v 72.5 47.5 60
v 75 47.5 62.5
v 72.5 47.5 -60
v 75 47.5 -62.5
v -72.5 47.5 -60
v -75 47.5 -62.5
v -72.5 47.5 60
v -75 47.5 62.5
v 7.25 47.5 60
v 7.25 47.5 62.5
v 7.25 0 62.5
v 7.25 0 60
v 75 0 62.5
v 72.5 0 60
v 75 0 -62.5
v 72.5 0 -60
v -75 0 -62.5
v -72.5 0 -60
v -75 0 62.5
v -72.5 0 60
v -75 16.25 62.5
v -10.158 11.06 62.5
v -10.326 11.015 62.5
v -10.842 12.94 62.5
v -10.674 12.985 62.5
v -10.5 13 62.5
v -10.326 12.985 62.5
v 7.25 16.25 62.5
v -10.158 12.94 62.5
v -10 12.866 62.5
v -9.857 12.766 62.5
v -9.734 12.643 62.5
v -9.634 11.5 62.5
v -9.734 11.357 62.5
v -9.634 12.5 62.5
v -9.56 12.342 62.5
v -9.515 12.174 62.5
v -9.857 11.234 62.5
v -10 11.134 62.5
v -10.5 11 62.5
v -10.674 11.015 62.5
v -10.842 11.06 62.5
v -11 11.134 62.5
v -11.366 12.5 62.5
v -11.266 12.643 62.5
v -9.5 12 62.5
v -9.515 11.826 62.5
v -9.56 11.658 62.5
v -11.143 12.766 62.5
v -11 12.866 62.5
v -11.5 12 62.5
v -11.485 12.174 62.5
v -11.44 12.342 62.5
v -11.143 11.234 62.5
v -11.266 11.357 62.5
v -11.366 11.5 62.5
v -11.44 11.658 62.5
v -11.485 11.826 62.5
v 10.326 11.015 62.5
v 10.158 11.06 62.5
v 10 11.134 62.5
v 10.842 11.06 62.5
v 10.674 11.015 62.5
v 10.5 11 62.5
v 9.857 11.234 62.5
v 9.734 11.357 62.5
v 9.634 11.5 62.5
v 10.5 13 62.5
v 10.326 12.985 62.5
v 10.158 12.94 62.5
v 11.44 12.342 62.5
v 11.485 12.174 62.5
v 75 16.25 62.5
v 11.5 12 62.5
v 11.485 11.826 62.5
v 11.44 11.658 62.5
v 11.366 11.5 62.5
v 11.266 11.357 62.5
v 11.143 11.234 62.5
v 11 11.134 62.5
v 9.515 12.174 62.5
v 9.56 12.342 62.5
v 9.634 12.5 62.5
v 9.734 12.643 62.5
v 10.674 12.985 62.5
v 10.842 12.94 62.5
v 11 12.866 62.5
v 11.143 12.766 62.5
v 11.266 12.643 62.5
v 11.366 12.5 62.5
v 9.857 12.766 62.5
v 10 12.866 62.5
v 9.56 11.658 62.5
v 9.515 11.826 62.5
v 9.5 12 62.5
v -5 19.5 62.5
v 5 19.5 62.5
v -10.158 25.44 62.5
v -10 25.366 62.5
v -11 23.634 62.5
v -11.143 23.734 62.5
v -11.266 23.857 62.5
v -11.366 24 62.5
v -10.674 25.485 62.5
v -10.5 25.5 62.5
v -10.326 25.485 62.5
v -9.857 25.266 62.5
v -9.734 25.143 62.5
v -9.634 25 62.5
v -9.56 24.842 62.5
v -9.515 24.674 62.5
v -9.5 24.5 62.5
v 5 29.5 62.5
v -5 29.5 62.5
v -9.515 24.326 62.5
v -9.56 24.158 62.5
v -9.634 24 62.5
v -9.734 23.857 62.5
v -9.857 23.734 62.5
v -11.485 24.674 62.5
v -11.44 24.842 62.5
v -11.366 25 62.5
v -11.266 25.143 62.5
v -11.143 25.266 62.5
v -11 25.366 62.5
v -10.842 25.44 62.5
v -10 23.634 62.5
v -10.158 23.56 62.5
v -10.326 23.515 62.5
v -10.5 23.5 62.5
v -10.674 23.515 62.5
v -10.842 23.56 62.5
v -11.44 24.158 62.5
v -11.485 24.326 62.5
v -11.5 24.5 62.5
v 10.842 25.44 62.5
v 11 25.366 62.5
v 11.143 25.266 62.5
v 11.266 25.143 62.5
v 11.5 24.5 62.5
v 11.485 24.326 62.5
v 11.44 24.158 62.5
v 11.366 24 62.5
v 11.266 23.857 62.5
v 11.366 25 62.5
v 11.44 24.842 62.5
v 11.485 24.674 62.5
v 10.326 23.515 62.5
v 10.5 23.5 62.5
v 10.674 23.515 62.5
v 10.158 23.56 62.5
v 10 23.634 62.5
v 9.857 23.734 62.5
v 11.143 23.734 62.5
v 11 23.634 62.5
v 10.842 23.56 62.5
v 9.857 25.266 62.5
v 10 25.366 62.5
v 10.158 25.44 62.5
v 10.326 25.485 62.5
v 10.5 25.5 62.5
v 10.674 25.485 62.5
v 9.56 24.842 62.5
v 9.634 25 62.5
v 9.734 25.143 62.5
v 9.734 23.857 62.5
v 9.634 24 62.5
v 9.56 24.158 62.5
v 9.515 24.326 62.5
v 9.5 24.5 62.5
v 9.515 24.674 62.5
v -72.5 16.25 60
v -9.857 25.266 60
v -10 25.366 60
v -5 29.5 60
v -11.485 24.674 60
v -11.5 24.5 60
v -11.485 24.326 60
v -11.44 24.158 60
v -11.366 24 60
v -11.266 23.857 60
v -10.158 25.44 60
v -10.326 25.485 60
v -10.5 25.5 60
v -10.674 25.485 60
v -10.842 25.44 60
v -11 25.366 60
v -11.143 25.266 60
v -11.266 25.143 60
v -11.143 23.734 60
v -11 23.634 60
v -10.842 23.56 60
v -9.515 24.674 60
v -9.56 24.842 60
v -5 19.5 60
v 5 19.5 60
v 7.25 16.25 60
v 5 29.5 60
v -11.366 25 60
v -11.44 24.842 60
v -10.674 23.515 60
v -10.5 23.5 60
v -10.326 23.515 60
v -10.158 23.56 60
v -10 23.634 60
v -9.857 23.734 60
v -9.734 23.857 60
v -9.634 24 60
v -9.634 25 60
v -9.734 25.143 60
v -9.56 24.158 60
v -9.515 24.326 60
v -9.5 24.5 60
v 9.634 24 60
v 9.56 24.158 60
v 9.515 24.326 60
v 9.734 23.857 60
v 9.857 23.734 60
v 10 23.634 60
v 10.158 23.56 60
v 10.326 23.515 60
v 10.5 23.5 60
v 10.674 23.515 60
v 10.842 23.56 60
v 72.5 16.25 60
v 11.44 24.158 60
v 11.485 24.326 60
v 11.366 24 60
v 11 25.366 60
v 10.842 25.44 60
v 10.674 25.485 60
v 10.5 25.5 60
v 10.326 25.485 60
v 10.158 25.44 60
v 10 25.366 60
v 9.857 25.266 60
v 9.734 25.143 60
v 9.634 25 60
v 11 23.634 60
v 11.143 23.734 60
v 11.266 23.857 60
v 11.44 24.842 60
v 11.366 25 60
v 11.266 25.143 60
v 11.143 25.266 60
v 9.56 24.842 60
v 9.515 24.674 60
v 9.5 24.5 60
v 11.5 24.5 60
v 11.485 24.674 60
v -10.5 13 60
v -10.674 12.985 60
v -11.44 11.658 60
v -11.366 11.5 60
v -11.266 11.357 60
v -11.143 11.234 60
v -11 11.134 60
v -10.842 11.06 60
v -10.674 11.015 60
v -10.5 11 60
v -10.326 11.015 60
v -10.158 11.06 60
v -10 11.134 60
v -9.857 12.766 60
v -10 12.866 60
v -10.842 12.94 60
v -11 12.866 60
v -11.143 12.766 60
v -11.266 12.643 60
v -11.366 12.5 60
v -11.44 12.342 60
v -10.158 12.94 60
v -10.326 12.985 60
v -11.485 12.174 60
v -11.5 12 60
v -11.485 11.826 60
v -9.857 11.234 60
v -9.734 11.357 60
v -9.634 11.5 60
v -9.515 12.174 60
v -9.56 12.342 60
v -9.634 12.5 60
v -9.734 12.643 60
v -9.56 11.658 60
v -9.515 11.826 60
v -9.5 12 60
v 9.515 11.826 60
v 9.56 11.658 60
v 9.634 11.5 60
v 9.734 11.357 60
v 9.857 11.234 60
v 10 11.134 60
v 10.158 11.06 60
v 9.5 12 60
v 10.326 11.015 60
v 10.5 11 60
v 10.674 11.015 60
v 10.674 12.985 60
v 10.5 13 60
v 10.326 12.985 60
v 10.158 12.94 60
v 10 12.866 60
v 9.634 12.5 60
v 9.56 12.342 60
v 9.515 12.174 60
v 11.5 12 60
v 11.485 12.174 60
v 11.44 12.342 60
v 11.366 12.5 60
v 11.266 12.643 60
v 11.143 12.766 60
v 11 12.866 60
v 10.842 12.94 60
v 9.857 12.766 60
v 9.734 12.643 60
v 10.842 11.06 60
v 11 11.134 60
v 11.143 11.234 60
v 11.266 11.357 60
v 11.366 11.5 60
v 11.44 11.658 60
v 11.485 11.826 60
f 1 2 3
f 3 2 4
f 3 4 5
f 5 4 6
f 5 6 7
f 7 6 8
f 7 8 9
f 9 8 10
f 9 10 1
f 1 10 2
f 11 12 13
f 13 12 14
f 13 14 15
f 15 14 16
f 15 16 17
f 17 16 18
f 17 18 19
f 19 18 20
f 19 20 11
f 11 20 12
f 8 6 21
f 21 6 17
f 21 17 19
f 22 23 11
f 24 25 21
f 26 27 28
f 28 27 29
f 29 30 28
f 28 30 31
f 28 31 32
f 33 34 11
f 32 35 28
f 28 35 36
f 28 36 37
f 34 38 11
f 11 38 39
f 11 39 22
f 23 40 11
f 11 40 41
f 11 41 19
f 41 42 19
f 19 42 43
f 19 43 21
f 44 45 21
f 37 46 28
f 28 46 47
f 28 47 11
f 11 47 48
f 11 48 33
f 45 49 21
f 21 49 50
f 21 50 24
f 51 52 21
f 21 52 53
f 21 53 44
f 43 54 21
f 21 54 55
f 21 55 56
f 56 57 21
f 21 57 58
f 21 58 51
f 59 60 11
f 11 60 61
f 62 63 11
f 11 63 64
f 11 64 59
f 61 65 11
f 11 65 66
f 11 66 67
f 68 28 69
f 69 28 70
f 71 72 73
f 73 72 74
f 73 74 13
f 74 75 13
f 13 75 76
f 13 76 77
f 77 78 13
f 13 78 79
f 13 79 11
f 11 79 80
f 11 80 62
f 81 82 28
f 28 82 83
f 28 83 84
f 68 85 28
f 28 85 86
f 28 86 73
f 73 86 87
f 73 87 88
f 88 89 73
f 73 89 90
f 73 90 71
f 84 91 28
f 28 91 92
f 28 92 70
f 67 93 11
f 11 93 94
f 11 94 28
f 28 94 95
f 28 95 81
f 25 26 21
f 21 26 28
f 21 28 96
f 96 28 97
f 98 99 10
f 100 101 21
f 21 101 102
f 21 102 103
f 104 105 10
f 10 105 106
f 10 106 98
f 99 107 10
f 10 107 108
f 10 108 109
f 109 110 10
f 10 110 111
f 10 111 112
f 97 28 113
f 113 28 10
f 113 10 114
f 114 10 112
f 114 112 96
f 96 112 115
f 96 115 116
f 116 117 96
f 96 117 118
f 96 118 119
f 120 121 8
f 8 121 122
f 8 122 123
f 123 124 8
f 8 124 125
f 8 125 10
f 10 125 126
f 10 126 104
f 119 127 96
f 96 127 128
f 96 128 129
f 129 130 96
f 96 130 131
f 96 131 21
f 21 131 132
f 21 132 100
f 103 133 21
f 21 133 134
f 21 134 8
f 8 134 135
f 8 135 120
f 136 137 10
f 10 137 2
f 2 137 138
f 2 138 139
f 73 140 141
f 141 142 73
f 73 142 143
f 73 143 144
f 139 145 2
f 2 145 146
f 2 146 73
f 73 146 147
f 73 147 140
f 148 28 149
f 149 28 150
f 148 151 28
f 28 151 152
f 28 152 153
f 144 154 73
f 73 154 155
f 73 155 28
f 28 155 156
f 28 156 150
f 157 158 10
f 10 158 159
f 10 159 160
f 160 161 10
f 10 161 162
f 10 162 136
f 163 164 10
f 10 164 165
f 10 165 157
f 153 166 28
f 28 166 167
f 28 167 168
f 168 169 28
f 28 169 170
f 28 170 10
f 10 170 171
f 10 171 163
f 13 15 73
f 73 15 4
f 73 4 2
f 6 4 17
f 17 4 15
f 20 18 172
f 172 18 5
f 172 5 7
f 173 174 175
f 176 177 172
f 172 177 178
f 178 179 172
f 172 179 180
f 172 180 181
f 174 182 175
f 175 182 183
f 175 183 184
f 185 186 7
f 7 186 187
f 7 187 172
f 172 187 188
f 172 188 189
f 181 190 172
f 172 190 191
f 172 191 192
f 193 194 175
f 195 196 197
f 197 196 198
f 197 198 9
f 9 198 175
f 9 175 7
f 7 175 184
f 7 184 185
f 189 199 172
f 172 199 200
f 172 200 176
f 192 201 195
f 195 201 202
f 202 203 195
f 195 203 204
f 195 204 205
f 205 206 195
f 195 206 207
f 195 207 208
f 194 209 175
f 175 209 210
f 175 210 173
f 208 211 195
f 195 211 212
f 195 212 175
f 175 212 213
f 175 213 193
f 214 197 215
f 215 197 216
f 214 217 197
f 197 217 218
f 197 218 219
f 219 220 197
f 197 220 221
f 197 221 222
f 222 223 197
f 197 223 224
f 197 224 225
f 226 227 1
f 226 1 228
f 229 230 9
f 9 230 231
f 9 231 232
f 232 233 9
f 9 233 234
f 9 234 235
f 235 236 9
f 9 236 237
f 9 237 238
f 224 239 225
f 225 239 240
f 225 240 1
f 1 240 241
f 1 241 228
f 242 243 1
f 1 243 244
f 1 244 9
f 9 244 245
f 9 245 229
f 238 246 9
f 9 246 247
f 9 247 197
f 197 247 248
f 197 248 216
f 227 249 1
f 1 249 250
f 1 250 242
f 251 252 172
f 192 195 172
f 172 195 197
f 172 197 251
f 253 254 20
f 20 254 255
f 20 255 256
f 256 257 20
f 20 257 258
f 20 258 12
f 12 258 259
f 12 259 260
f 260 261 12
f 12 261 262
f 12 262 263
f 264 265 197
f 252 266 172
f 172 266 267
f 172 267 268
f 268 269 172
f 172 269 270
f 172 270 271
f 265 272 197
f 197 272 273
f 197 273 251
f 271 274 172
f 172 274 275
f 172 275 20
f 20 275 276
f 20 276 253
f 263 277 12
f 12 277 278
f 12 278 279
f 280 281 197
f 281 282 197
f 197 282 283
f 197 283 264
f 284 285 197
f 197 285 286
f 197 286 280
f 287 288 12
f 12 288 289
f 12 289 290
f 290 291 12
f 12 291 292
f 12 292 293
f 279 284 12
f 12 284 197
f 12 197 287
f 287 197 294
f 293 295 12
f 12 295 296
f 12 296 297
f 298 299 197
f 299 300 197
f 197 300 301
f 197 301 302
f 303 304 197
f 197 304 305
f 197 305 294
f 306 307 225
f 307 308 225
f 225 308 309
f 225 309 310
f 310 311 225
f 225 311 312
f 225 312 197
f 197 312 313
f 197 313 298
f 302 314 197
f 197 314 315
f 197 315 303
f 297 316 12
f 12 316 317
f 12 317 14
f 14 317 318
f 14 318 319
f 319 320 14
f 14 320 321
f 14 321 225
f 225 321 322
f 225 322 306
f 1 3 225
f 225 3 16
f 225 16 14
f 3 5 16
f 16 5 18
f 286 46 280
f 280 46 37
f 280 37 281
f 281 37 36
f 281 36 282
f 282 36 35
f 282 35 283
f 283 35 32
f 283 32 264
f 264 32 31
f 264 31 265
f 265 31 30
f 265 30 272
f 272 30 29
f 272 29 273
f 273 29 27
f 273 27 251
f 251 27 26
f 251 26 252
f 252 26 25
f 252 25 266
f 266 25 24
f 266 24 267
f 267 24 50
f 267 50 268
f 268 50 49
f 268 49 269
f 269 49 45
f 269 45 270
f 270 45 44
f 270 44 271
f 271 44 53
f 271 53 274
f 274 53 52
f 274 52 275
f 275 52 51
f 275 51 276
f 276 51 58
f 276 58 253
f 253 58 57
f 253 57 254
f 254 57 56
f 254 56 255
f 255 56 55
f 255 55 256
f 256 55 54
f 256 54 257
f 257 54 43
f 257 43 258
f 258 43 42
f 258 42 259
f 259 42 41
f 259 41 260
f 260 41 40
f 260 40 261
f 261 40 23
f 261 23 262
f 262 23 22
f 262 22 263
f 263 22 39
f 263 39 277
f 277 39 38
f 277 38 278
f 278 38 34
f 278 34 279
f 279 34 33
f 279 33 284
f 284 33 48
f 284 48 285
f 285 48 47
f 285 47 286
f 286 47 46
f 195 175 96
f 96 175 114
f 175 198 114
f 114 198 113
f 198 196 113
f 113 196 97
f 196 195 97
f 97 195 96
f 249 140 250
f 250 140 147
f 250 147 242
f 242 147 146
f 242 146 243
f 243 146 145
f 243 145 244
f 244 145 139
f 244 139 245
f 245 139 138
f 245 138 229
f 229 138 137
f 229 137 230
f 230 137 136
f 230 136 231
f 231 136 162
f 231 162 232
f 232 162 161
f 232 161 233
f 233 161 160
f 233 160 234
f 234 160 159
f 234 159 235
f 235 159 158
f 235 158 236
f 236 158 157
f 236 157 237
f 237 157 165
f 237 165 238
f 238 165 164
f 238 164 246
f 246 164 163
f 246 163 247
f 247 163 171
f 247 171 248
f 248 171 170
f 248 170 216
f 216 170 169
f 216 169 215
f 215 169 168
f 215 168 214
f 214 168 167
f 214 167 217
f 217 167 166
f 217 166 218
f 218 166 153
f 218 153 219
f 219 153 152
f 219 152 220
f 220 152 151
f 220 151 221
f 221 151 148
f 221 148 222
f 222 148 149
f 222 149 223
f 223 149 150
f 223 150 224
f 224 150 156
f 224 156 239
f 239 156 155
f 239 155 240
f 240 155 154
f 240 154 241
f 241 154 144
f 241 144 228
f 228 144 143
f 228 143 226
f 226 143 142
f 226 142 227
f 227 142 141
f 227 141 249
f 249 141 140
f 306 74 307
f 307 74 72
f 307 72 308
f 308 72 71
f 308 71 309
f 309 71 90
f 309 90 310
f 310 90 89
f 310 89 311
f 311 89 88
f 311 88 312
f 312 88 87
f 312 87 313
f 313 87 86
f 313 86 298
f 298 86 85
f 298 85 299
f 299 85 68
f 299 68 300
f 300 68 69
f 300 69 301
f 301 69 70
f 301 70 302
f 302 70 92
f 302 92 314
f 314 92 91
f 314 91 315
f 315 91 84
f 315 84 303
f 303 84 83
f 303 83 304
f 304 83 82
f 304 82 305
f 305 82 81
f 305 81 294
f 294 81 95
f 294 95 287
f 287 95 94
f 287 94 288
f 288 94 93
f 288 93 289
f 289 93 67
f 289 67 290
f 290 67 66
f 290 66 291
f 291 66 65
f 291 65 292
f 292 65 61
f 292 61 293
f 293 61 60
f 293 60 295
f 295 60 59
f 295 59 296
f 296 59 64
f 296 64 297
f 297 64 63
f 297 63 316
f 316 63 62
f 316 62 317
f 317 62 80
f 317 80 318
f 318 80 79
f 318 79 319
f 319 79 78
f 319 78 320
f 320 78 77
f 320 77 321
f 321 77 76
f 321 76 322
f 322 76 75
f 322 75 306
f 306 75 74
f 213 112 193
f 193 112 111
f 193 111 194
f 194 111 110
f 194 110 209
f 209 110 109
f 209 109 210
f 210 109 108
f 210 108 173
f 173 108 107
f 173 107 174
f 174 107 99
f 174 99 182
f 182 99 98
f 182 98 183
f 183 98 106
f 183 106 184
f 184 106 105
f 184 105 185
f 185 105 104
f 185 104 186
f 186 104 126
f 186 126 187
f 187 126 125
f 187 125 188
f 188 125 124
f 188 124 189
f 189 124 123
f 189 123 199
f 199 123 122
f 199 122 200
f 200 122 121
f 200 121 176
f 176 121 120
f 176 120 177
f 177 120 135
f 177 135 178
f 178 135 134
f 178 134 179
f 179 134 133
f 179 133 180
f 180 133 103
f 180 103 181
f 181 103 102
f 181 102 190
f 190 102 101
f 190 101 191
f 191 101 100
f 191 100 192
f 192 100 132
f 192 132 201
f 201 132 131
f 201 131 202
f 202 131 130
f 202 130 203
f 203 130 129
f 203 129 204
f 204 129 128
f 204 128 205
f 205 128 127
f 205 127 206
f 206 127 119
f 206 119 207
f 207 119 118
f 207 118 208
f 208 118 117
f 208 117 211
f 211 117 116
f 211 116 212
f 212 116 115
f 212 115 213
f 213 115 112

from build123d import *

# Parameters (mm, degrees)
SKETCH1_W           = 150
SKETCH1_H           = 125
BOSS_EXTRUDE1_DEPTH = 47.5
SHELL1_T            = -2.5
SKETCH2_R           = 1
SKETCH2_W           = 10
SKETCH2_H           = 10
CUT_EXTRUDE1_DEPTH  = 2.5


with BuildPart() as part:
    # Sketch1 → Boss-Extrude1 (new body)
    with BuildSketch(Plane(origin=(0, 0, 0), x_dir=(1, 0, 0), z_dir=(0, 1, 0))):
        Rectangle(SKETCH1_W, SKETCH1_H)
    extrude(amount=BOSS_EXTRUDE1_DEPTH)

    # Shell1
    shell1_openings = [part.faces().sort_by_distance(p)[0] for p in [
        (0, 47.5, 0),
        (0, 0, 0),
    ]]
    offset(amount=SHELL1_T, openings=shell1_openings, kind=Kind.INTERSECTION)

    # Sketch2 → Cut-Extrude1 (cut)
    with BuildSketch(Plane.XY.offset(62.5)):
        with Locations((-10.5, 12)):
            Circle(SKETCH2_R)
        with Locations((-10.5, 24.5)):
            Circle(SKETCH2_R)
        with Locations((10.5, 12)):
            Circle(SKETCH2_R)
        with Locations((10.5, 24.5)):
            Circle(SKETCH2_R)
        with Locations((0, 24.5)):
            Rectangle(SKETCH2_W, SKETCH2_H)
    extrude(amount=-CUT_EXTRUDE1_DEPTH, mode=Mode.SUBTRACT)


solid = part.part
